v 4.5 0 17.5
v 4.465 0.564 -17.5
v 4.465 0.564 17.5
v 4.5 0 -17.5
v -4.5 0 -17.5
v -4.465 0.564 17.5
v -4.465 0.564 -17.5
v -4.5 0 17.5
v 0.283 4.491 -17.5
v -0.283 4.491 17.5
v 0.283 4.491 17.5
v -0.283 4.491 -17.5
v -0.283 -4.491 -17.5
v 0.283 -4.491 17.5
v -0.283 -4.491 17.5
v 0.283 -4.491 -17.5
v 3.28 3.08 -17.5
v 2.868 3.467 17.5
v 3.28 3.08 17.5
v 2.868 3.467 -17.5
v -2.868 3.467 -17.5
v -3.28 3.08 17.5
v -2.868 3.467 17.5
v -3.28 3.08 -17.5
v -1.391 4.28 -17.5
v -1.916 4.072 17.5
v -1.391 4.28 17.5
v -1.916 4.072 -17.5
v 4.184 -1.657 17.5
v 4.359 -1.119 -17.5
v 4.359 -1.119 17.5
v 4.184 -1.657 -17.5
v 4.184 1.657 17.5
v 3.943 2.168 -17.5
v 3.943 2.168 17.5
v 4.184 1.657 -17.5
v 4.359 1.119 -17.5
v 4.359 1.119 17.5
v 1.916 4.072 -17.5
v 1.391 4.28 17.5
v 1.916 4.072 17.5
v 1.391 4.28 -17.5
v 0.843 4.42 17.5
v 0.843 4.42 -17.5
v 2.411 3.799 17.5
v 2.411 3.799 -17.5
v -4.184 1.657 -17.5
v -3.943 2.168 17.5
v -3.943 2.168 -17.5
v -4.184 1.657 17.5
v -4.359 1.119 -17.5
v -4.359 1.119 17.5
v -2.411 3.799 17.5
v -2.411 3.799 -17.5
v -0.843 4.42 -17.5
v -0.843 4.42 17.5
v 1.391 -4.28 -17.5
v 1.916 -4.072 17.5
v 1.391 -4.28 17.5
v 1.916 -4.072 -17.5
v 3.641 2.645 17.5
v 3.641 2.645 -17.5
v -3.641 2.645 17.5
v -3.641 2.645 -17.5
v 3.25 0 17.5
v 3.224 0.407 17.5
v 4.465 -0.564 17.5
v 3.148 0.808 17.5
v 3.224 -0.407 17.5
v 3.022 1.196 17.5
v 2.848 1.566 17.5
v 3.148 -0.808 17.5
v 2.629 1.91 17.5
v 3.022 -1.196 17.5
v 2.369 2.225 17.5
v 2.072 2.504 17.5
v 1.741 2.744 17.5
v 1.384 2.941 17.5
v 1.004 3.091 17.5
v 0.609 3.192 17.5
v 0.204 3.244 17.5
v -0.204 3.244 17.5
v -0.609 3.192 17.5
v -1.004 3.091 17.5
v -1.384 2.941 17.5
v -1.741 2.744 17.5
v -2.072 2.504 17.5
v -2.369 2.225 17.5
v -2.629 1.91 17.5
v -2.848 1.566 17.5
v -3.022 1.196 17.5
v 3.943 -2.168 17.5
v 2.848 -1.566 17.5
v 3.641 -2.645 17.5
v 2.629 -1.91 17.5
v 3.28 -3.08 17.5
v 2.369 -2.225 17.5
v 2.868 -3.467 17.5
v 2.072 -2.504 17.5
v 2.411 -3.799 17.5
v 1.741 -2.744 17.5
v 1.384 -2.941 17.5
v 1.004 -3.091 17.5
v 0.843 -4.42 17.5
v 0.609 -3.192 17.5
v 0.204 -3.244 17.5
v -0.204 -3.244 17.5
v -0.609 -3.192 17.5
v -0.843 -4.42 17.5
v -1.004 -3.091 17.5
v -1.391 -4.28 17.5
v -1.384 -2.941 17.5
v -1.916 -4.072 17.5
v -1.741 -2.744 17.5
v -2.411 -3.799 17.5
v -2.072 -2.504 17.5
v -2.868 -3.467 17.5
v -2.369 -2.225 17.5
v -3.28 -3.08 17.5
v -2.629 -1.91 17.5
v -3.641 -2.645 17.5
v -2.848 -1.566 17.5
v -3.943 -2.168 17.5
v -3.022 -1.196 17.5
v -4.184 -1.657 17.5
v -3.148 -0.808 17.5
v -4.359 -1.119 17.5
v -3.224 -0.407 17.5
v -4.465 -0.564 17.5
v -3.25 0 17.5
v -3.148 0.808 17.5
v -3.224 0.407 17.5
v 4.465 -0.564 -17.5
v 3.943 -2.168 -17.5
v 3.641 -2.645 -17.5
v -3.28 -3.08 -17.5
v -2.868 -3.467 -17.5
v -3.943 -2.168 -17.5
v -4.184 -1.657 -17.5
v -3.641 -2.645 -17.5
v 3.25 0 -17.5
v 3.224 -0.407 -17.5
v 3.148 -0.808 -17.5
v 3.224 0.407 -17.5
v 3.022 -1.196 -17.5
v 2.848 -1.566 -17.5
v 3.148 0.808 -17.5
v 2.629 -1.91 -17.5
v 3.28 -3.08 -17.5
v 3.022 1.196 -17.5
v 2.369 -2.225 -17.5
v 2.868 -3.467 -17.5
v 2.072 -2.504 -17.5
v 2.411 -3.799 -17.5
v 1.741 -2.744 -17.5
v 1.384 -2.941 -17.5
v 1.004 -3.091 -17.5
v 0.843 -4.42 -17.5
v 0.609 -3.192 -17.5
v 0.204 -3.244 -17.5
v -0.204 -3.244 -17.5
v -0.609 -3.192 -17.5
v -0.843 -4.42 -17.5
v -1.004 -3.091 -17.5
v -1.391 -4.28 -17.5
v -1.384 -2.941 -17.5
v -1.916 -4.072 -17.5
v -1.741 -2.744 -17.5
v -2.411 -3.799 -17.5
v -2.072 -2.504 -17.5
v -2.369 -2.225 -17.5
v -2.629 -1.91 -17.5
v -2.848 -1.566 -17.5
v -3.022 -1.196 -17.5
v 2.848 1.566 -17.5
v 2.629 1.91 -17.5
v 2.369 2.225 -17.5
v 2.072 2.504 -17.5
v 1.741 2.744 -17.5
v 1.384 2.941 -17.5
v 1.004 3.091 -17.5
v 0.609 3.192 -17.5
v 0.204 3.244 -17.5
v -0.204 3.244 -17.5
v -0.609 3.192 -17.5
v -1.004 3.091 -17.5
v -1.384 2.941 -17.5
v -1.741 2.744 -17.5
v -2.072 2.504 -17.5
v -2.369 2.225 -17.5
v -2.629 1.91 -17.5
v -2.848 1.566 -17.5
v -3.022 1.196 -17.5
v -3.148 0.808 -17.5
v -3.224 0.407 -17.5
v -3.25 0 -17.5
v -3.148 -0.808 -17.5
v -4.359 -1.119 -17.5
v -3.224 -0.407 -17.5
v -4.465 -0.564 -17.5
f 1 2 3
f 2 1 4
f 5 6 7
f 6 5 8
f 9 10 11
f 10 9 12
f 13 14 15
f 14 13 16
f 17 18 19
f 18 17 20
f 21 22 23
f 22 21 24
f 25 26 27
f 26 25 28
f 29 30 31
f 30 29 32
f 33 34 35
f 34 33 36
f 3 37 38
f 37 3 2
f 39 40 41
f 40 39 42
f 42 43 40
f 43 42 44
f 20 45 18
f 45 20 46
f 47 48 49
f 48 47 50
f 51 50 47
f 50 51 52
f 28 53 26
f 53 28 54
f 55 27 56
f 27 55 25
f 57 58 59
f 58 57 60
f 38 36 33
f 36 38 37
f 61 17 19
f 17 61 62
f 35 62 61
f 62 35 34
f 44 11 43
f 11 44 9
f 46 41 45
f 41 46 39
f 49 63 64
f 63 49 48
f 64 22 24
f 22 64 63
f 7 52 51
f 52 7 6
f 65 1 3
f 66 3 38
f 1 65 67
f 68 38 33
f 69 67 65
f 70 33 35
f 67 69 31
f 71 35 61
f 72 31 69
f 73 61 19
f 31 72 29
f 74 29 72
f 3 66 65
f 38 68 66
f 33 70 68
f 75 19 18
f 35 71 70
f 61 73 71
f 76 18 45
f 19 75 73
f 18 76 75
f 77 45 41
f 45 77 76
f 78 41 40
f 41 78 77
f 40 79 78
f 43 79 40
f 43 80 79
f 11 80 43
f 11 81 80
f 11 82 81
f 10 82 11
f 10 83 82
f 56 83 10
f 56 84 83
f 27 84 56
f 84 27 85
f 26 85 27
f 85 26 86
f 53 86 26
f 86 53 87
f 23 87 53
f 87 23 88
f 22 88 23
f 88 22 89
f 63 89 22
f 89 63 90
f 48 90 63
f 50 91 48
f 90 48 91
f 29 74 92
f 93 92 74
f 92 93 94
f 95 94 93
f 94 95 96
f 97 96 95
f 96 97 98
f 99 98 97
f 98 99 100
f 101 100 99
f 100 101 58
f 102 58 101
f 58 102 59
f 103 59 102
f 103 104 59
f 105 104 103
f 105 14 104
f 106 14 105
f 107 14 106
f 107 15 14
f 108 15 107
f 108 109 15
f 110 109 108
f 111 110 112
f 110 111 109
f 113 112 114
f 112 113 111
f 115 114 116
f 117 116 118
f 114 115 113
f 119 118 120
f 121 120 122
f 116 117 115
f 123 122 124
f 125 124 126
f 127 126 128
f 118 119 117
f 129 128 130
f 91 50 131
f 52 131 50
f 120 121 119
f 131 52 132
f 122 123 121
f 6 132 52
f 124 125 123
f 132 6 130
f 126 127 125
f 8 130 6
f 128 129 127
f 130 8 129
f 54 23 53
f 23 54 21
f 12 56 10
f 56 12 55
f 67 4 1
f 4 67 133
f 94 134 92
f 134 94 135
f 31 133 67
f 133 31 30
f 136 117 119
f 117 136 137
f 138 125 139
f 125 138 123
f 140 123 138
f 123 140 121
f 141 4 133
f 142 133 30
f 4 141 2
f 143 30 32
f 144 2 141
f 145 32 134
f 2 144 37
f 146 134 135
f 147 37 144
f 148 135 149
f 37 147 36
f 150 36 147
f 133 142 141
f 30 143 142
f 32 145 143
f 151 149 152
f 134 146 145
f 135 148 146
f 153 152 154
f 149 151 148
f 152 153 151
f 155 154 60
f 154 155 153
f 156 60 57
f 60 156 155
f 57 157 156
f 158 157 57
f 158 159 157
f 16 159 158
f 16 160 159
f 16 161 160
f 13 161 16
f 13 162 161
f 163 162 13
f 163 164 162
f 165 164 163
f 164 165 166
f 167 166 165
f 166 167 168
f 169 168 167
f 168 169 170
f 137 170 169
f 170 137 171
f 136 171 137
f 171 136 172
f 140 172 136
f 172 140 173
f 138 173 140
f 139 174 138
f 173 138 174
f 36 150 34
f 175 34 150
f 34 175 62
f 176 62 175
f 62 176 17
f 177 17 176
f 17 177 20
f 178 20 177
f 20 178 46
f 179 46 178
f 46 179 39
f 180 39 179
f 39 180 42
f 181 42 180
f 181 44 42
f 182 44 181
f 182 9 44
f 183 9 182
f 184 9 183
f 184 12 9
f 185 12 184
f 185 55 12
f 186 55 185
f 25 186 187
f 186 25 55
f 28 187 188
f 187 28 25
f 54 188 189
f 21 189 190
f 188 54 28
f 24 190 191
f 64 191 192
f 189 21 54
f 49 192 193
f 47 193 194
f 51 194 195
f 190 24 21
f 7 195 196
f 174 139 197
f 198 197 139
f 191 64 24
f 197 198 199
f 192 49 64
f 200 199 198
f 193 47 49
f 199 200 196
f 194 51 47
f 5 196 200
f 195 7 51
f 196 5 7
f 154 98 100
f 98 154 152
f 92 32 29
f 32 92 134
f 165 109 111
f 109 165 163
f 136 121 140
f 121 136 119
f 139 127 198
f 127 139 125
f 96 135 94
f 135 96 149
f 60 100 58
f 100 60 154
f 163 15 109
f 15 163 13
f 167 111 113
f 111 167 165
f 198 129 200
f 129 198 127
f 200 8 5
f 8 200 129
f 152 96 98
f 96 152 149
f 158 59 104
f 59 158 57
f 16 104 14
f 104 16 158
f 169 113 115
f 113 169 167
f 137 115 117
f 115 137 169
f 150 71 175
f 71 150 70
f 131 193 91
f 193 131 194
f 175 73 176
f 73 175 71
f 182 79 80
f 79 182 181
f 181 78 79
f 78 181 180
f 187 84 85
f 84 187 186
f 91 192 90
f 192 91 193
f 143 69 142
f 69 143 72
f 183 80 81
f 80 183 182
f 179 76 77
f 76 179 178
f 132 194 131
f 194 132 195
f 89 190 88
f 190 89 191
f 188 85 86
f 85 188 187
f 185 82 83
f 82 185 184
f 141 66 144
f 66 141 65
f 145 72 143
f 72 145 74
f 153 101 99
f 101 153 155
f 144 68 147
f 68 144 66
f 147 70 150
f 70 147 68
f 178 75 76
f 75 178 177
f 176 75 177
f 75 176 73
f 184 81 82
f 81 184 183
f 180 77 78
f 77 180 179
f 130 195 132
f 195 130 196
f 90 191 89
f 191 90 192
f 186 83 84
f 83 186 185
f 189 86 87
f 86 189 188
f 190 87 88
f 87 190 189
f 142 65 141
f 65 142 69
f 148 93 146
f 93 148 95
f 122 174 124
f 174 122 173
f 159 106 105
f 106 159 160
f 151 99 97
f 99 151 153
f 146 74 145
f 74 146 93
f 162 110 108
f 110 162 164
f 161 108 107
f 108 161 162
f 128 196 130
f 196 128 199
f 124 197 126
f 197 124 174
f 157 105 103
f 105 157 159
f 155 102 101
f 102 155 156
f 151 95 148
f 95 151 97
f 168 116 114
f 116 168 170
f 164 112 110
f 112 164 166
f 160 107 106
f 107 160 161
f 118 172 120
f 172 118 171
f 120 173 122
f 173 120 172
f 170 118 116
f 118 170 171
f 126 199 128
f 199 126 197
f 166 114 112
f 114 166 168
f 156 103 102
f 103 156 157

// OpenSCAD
$fn = 50;


difference() {
	union() {
		translate(v = [0, 0, -17.5000000000]) {
			cylinder(h = 35, r = 4.5000000000);
		}
	}
	union() {
		translate(v = [0, 0, -100.0000000000]) {
			cylinder(h = 200, r = 3.2500000000);
		}
	}
}
